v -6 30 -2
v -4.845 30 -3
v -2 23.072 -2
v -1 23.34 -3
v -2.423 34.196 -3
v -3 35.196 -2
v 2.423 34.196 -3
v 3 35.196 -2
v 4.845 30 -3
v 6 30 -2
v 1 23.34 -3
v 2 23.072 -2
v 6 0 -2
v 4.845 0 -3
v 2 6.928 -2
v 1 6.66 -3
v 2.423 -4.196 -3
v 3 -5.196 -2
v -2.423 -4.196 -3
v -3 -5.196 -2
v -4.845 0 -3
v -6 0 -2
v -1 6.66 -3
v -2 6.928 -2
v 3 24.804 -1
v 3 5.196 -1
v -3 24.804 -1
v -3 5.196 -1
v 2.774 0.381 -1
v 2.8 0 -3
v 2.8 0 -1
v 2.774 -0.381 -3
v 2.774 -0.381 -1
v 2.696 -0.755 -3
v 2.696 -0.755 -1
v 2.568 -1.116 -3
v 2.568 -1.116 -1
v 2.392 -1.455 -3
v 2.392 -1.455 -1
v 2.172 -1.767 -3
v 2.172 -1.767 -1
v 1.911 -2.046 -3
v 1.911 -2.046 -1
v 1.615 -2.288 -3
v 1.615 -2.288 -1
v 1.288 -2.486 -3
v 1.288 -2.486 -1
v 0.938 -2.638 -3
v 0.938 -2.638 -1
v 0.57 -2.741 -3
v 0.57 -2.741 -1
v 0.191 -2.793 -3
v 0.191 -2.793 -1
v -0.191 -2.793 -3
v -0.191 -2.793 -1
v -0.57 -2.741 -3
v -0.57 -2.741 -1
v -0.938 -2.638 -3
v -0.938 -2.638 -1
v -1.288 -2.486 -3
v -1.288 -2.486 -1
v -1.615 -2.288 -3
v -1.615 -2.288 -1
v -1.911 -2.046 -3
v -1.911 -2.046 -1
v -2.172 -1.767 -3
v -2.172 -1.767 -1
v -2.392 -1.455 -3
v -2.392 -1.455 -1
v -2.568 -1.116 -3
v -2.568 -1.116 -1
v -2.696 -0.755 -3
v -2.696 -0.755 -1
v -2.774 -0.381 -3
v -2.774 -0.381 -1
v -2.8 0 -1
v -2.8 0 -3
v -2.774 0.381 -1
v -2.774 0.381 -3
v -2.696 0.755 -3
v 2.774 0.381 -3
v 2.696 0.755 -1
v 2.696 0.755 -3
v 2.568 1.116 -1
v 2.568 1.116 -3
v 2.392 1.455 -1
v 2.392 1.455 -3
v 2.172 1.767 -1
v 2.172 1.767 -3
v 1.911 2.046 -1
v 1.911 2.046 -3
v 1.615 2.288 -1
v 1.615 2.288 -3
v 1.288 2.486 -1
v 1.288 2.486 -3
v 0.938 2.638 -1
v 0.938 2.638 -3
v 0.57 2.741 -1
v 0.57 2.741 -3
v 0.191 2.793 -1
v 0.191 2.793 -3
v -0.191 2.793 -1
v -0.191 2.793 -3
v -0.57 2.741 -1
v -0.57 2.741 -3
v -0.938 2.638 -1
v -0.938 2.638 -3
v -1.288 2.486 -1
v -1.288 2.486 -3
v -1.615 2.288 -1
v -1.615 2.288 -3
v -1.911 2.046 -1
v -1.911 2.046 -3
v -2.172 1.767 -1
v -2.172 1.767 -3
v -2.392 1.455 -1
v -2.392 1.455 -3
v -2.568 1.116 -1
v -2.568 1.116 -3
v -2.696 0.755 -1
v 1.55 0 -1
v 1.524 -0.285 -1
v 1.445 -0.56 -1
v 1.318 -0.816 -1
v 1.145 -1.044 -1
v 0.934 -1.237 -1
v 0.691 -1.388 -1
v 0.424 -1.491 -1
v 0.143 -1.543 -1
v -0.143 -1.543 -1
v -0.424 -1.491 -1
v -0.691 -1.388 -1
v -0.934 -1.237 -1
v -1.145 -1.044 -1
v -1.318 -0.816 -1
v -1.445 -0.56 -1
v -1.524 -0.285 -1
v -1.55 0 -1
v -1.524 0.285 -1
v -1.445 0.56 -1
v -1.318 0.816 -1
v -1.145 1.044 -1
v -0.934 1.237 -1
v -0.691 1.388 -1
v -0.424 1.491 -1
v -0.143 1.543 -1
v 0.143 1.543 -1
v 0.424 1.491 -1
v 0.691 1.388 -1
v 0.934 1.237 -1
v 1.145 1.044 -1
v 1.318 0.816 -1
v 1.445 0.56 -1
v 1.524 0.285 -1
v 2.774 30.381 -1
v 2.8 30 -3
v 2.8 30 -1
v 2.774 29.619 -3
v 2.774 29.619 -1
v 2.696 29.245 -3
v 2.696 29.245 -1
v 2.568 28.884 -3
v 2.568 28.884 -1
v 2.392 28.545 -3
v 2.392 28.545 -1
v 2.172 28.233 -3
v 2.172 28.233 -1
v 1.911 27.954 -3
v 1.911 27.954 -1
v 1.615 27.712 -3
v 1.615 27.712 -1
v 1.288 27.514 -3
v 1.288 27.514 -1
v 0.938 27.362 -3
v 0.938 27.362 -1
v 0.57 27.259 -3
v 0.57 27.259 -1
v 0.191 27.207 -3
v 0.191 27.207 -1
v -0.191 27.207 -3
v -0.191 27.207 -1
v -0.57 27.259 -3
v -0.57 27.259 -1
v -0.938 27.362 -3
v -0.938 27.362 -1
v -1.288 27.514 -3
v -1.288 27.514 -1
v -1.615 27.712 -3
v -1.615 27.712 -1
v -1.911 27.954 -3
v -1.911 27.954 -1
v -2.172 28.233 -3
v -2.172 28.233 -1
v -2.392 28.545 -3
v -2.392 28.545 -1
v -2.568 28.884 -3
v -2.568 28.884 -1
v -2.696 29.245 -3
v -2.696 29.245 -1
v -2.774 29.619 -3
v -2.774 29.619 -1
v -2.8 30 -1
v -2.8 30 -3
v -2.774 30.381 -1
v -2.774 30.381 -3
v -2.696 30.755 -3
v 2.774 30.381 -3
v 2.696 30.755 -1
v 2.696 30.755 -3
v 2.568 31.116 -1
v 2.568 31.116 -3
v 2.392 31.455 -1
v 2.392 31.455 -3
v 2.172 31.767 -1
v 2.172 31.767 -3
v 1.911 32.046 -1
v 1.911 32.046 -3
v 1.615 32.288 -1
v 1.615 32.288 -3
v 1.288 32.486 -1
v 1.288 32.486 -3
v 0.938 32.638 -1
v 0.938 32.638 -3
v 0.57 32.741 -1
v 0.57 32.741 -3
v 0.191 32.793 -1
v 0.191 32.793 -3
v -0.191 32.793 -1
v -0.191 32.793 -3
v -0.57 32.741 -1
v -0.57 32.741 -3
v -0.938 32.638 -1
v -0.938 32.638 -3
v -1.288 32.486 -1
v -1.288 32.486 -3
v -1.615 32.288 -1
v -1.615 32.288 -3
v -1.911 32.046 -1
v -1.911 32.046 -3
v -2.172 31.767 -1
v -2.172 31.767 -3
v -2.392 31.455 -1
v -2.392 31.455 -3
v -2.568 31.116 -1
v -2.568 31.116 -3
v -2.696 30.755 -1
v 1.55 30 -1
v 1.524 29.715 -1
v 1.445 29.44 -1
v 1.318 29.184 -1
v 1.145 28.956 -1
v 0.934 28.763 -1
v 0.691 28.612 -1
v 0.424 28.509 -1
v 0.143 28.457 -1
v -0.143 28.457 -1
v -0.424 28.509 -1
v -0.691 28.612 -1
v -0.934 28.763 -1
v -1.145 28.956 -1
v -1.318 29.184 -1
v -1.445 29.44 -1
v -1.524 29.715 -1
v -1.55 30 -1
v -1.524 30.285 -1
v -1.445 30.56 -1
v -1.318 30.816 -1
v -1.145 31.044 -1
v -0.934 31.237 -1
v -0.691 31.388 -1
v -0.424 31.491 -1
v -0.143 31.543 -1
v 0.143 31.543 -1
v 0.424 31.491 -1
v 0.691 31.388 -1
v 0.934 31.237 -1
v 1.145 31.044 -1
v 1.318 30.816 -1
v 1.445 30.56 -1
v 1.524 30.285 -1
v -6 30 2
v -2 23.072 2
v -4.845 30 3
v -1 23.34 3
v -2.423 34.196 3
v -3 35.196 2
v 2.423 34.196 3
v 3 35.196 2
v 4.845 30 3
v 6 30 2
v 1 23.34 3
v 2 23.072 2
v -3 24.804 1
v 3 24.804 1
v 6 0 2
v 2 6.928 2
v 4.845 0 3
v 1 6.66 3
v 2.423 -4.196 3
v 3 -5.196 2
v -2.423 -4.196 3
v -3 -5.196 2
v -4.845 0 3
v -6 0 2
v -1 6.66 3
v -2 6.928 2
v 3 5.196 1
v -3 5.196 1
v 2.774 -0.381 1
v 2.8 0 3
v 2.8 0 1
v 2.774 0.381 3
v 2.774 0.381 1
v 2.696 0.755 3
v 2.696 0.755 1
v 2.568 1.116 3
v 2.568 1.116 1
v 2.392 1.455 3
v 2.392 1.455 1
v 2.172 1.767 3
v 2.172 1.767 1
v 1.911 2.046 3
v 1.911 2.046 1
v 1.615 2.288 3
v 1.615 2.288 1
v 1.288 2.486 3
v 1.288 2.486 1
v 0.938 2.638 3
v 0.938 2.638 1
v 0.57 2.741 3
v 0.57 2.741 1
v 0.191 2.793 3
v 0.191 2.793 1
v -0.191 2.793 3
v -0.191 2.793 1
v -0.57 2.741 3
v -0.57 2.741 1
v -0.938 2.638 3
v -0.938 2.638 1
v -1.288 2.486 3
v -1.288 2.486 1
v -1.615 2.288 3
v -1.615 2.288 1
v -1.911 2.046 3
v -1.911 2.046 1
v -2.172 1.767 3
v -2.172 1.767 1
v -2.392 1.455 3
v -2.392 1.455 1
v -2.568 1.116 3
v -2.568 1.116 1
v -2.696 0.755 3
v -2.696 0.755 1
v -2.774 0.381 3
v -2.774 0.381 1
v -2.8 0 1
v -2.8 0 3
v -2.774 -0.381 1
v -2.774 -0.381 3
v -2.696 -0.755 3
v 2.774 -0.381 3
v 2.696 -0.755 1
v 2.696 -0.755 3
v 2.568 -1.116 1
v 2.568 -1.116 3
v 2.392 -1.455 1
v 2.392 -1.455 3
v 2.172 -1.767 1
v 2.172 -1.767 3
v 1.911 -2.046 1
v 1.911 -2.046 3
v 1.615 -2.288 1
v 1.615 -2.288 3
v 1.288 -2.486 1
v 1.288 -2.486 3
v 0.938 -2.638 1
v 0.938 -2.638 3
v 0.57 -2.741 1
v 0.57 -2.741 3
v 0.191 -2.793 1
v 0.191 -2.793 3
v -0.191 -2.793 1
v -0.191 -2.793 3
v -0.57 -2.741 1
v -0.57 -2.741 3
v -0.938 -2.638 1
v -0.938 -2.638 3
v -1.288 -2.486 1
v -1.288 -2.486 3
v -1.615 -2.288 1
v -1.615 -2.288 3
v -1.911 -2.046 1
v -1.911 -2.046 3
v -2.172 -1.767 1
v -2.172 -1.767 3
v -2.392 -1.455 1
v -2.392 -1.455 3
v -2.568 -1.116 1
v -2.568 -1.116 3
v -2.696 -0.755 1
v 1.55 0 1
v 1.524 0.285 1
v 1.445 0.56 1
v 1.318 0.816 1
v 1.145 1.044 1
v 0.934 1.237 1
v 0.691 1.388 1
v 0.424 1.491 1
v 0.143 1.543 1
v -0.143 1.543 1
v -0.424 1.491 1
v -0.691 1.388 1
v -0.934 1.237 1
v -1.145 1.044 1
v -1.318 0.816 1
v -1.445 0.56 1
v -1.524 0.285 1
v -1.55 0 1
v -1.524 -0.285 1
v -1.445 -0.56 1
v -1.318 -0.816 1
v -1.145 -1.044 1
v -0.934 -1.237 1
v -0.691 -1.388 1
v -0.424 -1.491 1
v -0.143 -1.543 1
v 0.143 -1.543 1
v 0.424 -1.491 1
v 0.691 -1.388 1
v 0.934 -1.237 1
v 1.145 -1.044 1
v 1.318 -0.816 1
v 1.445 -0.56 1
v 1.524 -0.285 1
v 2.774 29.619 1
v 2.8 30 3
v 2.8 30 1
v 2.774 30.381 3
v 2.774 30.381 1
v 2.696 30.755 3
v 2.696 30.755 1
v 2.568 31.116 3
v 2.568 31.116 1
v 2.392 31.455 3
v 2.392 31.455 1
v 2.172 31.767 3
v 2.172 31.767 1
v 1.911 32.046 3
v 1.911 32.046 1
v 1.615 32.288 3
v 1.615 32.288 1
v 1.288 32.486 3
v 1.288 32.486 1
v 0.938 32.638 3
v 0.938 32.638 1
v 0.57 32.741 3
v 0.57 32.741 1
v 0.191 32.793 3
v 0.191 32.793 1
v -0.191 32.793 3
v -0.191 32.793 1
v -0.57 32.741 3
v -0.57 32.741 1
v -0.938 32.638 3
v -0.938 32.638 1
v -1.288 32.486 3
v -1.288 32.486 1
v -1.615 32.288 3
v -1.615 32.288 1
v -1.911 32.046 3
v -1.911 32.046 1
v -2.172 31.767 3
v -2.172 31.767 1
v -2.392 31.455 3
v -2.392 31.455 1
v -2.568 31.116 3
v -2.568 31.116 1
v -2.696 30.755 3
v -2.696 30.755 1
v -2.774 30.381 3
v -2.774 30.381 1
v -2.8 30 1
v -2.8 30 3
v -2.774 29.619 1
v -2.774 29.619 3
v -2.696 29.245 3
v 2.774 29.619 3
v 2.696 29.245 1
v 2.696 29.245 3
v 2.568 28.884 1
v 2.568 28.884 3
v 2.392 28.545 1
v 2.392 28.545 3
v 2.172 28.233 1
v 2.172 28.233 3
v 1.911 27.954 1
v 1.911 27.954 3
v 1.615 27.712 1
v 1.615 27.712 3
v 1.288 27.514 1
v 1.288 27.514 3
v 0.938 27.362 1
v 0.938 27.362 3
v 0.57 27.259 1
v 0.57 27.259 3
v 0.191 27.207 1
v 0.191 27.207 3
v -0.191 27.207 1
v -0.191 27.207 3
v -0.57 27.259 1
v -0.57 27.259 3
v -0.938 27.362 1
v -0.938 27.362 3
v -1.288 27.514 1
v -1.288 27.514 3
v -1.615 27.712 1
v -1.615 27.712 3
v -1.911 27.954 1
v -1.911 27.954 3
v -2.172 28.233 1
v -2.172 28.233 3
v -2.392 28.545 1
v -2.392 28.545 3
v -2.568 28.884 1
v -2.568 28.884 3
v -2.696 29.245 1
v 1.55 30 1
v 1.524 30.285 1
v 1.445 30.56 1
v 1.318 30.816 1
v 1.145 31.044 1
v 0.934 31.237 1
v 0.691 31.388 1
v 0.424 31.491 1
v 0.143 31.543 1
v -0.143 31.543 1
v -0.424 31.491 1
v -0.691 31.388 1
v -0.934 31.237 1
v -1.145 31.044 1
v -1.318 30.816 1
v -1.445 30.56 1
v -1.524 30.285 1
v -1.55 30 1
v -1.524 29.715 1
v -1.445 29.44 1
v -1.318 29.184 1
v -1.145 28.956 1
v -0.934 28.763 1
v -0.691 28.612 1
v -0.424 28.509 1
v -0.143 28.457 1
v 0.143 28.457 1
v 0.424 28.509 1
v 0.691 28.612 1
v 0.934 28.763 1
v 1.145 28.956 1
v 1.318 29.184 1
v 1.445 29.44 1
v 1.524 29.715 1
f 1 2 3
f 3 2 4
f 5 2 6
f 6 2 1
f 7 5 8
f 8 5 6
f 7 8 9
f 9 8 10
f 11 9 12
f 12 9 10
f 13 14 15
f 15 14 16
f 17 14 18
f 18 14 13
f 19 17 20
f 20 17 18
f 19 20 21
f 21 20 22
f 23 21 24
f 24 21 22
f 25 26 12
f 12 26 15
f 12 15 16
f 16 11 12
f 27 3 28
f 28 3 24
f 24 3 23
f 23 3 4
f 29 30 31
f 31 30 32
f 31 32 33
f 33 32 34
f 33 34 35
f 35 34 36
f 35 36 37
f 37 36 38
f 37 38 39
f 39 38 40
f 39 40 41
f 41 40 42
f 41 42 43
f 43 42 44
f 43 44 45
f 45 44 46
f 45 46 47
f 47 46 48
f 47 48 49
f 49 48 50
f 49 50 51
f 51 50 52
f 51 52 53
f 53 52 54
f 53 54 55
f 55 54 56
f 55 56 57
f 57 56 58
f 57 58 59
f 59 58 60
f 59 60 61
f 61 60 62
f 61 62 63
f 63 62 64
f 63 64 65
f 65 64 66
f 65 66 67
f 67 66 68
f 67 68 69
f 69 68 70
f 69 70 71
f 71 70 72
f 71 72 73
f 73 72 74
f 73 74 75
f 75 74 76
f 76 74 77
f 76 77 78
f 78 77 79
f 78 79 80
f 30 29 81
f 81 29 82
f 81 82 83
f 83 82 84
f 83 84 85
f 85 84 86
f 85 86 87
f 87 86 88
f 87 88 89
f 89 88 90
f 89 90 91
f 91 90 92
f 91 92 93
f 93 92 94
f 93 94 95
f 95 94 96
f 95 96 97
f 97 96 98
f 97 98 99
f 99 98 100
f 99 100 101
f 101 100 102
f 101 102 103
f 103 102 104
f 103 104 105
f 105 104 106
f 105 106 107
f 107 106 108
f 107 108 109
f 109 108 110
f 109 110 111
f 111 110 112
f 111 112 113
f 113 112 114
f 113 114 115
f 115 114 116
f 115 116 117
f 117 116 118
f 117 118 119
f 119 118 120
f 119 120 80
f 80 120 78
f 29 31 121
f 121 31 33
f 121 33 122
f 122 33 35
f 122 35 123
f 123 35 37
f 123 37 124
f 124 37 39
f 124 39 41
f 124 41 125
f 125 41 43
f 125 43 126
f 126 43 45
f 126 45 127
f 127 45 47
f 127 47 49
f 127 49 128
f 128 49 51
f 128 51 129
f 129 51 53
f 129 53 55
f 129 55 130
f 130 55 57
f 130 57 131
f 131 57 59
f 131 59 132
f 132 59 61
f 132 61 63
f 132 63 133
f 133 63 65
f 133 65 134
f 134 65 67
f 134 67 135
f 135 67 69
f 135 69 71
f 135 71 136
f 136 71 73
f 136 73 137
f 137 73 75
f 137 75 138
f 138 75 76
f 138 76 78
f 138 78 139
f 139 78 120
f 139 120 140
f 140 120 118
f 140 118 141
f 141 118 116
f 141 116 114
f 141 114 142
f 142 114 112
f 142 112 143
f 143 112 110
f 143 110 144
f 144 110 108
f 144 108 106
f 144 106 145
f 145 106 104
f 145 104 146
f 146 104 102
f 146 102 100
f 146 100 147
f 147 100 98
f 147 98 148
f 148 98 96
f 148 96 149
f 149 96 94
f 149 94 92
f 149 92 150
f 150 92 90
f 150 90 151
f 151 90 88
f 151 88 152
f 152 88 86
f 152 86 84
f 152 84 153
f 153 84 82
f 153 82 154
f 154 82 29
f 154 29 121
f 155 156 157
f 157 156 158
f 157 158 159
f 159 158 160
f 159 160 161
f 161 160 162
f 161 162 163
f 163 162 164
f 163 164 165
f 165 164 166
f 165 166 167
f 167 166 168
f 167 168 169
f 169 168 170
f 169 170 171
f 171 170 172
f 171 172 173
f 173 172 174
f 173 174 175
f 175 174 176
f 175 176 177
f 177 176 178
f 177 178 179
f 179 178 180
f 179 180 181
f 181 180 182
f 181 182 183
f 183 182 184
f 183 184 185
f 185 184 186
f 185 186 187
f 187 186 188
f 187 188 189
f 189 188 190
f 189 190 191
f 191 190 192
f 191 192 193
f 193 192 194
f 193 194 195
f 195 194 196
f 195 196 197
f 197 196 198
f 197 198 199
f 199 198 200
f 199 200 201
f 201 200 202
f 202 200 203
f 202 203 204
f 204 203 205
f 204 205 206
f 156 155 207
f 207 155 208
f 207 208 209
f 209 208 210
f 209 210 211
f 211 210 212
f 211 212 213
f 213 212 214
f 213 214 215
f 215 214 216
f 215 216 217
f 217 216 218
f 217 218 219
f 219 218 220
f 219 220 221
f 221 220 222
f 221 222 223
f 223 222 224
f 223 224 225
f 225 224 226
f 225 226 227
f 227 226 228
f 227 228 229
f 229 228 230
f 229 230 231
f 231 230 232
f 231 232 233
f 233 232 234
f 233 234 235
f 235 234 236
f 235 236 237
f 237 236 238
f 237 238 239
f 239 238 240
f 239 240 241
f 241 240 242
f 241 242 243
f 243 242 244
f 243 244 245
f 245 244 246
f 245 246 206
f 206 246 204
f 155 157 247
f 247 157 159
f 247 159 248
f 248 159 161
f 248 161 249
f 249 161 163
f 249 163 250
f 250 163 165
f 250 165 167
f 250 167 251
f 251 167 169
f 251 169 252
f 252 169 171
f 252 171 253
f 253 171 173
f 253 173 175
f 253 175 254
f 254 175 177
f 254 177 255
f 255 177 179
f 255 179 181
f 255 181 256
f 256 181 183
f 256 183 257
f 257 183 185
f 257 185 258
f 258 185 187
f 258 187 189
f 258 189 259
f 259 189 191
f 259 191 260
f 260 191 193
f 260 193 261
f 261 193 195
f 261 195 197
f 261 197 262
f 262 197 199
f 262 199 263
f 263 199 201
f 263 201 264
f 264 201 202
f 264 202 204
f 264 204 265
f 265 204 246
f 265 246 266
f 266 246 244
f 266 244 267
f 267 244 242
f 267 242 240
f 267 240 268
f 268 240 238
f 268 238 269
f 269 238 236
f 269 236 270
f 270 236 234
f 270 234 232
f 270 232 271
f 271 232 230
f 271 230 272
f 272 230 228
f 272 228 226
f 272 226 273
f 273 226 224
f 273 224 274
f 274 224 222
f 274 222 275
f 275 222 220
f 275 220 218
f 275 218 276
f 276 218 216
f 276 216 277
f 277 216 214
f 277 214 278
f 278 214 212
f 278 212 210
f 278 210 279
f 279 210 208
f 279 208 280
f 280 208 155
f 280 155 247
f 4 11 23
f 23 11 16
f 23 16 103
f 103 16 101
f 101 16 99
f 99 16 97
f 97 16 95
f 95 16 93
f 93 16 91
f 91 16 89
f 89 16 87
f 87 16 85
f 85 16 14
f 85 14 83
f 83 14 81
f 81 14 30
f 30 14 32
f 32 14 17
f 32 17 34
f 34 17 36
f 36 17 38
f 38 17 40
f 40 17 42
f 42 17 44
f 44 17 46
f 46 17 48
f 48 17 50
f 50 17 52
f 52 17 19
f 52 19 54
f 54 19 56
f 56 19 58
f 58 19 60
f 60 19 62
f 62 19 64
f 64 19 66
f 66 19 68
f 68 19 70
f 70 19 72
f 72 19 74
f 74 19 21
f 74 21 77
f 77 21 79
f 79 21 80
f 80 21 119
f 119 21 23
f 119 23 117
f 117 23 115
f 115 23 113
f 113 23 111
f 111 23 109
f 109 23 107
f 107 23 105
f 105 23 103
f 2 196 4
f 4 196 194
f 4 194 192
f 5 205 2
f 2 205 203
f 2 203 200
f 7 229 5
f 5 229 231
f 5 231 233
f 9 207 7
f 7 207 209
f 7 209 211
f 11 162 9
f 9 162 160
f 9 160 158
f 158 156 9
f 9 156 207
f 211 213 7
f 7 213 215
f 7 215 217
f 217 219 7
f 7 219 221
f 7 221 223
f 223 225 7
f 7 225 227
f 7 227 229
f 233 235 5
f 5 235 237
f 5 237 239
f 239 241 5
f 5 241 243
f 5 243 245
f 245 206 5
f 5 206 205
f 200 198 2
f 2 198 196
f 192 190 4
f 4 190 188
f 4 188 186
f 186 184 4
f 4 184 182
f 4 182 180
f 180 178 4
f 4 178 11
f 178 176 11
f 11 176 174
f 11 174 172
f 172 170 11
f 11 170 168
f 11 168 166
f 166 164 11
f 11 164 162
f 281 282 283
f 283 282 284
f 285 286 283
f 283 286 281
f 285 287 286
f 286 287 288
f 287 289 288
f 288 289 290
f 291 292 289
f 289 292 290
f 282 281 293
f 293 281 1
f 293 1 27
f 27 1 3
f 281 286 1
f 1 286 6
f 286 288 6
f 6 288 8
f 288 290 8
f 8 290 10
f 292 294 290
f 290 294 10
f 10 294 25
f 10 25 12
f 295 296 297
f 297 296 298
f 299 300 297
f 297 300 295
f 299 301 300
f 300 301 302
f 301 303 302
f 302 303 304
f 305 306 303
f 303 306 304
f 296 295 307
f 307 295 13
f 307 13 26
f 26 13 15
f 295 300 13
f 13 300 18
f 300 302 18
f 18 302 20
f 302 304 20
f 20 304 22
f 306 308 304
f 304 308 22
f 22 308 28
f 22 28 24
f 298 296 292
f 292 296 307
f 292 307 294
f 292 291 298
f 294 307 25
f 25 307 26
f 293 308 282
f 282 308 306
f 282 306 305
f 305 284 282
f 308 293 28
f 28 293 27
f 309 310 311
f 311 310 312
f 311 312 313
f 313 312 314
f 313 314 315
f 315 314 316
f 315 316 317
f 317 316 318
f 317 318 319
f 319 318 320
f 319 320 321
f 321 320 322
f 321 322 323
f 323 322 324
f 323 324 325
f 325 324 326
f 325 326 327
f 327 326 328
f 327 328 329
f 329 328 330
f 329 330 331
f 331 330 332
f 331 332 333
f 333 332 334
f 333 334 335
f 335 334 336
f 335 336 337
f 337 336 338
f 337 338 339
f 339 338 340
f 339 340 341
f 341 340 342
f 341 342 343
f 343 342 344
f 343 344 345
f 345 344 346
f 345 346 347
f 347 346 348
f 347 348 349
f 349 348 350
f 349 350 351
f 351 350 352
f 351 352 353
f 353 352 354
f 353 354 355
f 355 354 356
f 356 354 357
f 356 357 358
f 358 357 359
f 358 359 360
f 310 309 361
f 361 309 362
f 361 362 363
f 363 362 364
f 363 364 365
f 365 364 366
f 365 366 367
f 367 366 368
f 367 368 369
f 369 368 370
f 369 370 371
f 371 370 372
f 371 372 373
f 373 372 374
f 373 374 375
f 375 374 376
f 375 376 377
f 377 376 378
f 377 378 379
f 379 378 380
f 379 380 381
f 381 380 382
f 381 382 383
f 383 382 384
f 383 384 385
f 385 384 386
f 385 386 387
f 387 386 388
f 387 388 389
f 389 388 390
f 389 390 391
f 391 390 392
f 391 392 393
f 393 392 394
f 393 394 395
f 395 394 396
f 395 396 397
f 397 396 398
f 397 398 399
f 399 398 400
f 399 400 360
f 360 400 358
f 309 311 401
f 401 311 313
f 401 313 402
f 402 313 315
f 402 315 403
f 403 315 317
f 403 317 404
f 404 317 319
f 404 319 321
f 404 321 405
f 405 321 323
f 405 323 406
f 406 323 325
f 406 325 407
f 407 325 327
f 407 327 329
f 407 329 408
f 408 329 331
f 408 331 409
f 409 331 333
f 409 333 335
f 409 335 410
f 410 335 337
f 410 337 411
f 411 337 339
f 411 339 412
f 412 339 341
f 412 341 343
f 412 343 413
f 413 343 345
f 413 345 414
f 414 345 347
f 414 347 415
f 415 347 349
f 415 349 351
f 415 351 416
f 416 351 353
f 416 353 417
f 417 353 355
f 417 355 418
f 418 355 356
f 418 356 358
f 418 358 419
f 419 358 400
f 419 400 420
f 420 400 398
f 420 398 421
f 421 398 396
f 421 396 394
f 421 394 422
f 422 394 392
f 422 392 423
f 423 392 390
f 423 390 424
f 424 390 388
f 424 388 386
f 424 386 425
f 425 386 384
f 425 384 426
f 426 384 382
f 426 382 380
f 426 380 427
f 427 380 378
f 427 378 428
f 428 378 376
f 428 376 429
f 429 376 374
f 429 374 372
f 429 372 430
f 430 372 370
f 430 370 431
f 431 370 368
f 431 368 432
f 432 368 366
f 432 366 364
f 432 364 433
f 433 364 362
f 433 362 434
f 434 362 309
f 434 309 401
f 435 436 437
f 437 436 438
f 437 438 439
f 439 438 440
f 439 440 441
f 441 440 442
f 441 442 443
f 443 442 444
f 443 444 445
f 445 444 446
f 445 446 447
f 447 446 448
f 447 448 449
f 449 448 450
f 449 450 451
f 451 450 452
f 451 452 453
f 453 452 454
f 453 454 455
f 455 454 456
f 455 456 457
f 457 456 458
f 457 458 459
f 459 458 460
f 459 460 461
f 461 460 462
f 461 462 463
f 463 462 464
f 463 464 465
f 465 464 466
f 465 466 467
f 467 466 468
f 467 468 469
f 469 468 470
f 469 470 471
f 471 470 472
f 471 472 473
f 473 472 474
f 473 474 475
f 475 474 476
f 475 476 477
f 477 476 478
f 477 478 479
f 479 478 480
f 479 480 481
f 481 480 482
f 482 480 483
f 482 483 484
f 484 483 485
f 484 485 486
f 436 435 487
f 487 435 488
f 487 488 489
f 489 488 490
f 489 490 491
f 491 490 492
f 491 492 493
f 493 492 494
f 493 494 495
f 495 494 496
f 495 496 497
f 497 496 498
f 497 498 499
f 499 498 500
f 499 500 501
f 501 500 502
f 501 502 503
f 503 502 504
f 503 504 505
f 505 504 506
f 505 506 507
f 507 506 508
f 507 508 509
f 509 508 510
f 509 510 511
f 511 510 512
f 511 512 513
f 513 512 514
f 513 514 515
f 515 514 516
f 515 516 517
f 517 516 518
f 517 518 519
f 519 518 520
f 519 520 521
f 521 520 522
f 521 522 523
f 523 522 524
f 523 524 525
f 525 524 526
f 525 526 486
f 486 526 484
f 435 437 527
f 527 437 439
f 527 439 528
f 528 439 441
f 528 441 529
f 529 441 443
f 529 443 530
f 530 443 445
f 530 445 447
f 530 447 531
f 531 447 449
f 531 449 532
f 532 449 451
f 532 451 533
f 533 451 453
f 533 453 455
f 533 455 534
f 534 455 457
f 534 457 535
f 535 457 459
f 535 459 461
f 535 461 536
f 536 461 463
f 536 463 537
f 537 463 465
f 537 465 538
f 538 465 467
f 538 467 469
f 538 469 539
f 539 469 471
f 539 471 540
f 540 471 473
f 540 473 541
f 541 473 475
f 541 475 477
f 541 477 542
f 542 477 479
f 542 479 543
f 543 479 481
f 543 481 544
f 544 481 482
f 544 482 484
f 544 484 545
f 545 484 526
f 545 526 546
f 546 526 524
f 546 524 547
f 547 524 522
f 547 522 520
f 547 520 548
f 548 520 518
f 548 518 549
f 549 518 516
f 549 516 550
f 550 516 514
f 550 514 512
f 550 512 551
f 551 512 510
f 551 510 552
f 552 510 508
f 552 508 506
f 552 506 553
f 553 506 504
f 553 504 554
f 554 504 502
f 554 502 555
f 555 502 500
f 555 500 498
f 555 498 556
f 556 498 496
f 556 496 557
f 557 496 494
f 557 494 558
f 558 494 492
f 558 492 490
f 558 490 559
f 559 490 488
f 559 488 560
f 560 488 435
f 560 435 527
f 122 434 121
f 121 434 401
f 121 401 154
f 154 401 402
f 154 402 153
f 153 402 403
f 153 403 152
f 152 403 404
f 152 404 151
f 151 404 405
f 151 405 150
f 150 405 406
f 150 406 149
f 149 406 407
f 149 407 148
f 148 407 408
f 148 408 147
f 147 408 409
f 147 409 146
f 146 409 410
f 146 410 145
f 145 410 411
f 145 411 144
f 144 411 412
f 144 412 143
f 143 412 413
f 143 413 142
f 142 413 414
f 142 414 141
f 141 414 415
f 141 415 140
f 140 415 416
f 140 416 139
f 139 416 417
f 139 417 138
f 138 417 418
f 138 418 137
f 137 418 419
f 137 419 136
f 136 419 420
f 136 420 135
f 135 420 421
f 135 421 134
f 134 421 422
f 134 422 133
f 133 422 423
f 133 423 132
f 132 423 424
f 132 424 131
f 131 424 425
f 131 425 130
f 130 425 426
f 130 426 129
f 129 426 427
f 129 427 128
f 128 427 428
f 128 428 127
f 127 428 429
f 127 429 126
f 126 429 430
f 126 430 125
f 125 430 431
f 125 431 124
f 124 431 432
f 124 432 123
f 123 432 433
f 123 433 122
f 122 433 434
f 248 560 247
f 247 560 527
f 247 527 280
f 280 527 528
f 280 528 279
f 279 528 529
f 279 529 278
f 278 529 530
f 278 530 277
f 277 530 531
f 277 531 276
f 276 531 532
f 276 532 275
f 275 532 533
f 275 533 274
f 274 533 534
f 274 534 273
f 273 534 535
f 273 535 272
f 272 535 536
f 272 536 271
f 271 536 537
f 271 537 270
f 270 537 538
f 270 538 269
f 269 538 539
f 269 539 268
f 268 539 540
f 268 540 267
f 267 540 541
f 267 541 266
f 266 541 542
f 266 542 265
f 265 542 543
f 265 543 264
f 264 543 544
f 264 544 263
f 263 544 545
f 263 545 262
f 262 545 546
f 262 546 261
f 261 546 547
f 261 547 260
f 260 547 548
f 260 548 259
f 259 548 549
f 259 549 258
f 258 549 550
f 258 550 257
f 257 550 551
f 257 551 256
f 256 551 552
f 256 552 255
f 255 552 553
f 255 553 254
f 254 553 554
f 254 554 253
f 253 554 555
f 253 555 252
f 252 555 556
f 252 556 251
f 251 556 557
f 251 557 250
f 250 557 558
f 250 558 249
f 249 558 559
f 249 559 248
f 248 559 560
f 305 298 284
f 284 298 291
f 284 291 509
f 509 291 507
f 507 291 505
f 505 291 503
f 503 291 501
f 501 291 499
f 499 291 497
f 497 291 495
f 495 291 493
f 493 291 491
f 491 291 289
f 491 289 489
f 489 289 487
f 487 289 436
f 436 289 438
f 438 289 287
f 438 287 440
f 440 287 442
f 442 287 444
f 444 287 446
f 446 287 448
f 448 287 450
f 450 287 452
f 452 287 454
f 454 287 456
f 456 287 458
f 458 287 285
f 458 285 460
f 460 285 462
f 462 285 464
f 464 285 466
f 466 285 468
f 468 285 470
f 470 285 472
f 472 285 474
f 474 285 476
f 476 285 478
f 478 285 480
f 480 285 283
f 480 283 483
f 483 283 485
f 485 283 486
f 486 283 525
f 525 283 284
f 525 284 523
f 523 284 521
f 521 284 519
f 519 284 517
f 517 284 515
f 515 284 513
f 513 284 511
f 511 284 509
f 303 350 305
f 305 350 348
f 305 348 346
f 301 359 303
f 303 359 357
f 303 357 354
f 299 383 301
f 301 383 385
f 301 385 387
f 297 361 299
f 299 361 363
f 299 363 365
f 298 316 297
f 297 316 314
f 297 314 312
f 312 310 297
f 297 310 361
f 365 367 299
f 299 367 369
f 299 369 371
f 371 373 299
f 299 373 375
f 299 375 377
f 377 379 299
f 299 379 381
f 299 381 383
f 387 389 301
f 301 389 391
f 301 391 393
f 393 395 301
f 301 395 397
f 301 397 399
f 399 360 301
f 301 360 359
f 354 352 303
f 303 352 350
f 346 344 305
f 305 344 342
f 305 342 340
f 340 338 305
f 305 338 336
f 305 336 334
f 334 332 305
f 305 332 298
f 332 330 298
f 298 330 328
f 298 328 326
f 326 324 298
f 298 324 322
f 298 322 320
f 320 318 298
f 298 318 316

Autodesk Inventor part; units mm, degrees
ref_plane "YZ Plane" through (0, 0, 0) normal (1, 0, 0) x (0, 1, 0)
ref_plane "XZ Plane" through (0, 0, 0) normal (0, 1, 0) x (-1, 0, 0)
ref_plane "XY Plane" through (0, 0, 0) normal (0, 0, 1) x (1, 0, 0)
sketch "Sketch1" plane through (0, 0, 0) normal (0, 0, 1) x (1, 0, 0)
  circle A0 centre (0, 0) radius 1.55
  circle A1 centre (0, 0) radius 3
  line L0 (0, 0) -> (0, 30)
  circle A2 centre (0, 30) radius 1.55
  circle A3 centre (0, 30) radius 3
  line L1 (3, 0) -> (3, 30)
  line L2 (-3, 0) -> (-3, 30)
  line L3 (6, 30) -> (3, 24.8038)
  line L4 (3, 24.8038) -> (-3, 24.8038)
  line L5 (-3, 24.8038) -> (-6, 30)
  line L6 (-6, 30) -> (-3, 35.1962)
  line L7 (-3, 35.1962) -> (3, 35.1962)
  line L8 (3, 35.1962) -> (6, 30)
  line L9 (6, 0) -> (3, -5.1962)
  line L10 (3, -5.1962) -> (-3, -5.1962)
  line L11 (-3, -5.1962) -> (-6, 0)
  line L12 (-6, 0) -> (-3, 5.1962)
  line L13 (-3, 5.1962) -> (3, 5.1962)
  line L14 (3, 5.1962) -> (6, 0)
  point P0 (3, 24.8038)
  point P1 (-3, 24.8038)
  dimension "d0" = 3.1
  dimension "d1" = 6
  dimension "d2" = 30
  dimension "d3" = 3.1
  dimension "d4" = 6
  dimension "d5" = 30
  dimension "d6" = 3
  dimension "d7" = 6
  dimension "d8" = 6
extrude "Extrusion1" add sketch "Sketch1" along normal blind 3
sketch "Sketch2" plane through (0, 0, 3) normal (0, 0, 1) x (1, 0, 0)
  circle A0 centre (0, 0) radius 2.8
  line L0 (3, 5.1962) -> (3, 24.8038) projected
  line L1 (3, 24.8038) -> (6, 30) projected
  line L2 (6, 30) -> (3, 35.1962) projected
  line L3 (3, 35.1962) -> (-3, 35.1962) projected
  line L4 (-3, 35.1962) -> (-6, 30) projected
  line L5 (-6, 30) -> (-3, 24.8038) projected
  line L6 (-3, 24.8038) -> (-3, 5.1962) projected
  line L7 (-3, 5.1962) -> (-6, 0) projected
  line L8 (-6, 0) -> (-3, -5.1962) projected
  line L9 (-3, -5.1962) -> (3, -5.1962) projected
  line L10 (3, -5.1962) -> (6, 0) projected
  line L11 (6, 0) -> (3, 5.1962) projected
  circle A1 centre (0, 30) radius 1.55 projected
  circle A2 centre (0, 0) radius 1.55 projected
  circle A3 centre (0, 30) radius 2.8
  dimension "d11" = 5.6
  dimension "d12" = 5.6
extrude "Extrusion2" cut sketch "Sketch2" against normal blind 2 contours A0 | A3
chamfer "Chamfer1" distance 2 angle 45 2 edges at (-3, 15, 3) (3, 15, 3)
chamfer "Chamfer2" distance 1 angle 45 10 edges at (-4.5, 2.5981, 3) (-4.5, -2.5981, 3) (0, -5.1962, 3) (4.5, -2.5981, 3) (4.5, 2.5981, 3) (4.5, 27.4019, 3) (-4.5, 27.4019, 3) (4.5, 32.5981, 3) (0, 35.1962, 3) (-4.5, 32.5981, 3)
mirror "Mirror1" about plane through (0, 15, 0) normal (0, 0, -1)
equation "\"d0\" = d3"
equation "\"d1\" = d4"
equation "\"d5\" = d2"
equation "\"d8\" = d7"
equation "\"d12\" = d11"
properties part number "Tibia Joint"
